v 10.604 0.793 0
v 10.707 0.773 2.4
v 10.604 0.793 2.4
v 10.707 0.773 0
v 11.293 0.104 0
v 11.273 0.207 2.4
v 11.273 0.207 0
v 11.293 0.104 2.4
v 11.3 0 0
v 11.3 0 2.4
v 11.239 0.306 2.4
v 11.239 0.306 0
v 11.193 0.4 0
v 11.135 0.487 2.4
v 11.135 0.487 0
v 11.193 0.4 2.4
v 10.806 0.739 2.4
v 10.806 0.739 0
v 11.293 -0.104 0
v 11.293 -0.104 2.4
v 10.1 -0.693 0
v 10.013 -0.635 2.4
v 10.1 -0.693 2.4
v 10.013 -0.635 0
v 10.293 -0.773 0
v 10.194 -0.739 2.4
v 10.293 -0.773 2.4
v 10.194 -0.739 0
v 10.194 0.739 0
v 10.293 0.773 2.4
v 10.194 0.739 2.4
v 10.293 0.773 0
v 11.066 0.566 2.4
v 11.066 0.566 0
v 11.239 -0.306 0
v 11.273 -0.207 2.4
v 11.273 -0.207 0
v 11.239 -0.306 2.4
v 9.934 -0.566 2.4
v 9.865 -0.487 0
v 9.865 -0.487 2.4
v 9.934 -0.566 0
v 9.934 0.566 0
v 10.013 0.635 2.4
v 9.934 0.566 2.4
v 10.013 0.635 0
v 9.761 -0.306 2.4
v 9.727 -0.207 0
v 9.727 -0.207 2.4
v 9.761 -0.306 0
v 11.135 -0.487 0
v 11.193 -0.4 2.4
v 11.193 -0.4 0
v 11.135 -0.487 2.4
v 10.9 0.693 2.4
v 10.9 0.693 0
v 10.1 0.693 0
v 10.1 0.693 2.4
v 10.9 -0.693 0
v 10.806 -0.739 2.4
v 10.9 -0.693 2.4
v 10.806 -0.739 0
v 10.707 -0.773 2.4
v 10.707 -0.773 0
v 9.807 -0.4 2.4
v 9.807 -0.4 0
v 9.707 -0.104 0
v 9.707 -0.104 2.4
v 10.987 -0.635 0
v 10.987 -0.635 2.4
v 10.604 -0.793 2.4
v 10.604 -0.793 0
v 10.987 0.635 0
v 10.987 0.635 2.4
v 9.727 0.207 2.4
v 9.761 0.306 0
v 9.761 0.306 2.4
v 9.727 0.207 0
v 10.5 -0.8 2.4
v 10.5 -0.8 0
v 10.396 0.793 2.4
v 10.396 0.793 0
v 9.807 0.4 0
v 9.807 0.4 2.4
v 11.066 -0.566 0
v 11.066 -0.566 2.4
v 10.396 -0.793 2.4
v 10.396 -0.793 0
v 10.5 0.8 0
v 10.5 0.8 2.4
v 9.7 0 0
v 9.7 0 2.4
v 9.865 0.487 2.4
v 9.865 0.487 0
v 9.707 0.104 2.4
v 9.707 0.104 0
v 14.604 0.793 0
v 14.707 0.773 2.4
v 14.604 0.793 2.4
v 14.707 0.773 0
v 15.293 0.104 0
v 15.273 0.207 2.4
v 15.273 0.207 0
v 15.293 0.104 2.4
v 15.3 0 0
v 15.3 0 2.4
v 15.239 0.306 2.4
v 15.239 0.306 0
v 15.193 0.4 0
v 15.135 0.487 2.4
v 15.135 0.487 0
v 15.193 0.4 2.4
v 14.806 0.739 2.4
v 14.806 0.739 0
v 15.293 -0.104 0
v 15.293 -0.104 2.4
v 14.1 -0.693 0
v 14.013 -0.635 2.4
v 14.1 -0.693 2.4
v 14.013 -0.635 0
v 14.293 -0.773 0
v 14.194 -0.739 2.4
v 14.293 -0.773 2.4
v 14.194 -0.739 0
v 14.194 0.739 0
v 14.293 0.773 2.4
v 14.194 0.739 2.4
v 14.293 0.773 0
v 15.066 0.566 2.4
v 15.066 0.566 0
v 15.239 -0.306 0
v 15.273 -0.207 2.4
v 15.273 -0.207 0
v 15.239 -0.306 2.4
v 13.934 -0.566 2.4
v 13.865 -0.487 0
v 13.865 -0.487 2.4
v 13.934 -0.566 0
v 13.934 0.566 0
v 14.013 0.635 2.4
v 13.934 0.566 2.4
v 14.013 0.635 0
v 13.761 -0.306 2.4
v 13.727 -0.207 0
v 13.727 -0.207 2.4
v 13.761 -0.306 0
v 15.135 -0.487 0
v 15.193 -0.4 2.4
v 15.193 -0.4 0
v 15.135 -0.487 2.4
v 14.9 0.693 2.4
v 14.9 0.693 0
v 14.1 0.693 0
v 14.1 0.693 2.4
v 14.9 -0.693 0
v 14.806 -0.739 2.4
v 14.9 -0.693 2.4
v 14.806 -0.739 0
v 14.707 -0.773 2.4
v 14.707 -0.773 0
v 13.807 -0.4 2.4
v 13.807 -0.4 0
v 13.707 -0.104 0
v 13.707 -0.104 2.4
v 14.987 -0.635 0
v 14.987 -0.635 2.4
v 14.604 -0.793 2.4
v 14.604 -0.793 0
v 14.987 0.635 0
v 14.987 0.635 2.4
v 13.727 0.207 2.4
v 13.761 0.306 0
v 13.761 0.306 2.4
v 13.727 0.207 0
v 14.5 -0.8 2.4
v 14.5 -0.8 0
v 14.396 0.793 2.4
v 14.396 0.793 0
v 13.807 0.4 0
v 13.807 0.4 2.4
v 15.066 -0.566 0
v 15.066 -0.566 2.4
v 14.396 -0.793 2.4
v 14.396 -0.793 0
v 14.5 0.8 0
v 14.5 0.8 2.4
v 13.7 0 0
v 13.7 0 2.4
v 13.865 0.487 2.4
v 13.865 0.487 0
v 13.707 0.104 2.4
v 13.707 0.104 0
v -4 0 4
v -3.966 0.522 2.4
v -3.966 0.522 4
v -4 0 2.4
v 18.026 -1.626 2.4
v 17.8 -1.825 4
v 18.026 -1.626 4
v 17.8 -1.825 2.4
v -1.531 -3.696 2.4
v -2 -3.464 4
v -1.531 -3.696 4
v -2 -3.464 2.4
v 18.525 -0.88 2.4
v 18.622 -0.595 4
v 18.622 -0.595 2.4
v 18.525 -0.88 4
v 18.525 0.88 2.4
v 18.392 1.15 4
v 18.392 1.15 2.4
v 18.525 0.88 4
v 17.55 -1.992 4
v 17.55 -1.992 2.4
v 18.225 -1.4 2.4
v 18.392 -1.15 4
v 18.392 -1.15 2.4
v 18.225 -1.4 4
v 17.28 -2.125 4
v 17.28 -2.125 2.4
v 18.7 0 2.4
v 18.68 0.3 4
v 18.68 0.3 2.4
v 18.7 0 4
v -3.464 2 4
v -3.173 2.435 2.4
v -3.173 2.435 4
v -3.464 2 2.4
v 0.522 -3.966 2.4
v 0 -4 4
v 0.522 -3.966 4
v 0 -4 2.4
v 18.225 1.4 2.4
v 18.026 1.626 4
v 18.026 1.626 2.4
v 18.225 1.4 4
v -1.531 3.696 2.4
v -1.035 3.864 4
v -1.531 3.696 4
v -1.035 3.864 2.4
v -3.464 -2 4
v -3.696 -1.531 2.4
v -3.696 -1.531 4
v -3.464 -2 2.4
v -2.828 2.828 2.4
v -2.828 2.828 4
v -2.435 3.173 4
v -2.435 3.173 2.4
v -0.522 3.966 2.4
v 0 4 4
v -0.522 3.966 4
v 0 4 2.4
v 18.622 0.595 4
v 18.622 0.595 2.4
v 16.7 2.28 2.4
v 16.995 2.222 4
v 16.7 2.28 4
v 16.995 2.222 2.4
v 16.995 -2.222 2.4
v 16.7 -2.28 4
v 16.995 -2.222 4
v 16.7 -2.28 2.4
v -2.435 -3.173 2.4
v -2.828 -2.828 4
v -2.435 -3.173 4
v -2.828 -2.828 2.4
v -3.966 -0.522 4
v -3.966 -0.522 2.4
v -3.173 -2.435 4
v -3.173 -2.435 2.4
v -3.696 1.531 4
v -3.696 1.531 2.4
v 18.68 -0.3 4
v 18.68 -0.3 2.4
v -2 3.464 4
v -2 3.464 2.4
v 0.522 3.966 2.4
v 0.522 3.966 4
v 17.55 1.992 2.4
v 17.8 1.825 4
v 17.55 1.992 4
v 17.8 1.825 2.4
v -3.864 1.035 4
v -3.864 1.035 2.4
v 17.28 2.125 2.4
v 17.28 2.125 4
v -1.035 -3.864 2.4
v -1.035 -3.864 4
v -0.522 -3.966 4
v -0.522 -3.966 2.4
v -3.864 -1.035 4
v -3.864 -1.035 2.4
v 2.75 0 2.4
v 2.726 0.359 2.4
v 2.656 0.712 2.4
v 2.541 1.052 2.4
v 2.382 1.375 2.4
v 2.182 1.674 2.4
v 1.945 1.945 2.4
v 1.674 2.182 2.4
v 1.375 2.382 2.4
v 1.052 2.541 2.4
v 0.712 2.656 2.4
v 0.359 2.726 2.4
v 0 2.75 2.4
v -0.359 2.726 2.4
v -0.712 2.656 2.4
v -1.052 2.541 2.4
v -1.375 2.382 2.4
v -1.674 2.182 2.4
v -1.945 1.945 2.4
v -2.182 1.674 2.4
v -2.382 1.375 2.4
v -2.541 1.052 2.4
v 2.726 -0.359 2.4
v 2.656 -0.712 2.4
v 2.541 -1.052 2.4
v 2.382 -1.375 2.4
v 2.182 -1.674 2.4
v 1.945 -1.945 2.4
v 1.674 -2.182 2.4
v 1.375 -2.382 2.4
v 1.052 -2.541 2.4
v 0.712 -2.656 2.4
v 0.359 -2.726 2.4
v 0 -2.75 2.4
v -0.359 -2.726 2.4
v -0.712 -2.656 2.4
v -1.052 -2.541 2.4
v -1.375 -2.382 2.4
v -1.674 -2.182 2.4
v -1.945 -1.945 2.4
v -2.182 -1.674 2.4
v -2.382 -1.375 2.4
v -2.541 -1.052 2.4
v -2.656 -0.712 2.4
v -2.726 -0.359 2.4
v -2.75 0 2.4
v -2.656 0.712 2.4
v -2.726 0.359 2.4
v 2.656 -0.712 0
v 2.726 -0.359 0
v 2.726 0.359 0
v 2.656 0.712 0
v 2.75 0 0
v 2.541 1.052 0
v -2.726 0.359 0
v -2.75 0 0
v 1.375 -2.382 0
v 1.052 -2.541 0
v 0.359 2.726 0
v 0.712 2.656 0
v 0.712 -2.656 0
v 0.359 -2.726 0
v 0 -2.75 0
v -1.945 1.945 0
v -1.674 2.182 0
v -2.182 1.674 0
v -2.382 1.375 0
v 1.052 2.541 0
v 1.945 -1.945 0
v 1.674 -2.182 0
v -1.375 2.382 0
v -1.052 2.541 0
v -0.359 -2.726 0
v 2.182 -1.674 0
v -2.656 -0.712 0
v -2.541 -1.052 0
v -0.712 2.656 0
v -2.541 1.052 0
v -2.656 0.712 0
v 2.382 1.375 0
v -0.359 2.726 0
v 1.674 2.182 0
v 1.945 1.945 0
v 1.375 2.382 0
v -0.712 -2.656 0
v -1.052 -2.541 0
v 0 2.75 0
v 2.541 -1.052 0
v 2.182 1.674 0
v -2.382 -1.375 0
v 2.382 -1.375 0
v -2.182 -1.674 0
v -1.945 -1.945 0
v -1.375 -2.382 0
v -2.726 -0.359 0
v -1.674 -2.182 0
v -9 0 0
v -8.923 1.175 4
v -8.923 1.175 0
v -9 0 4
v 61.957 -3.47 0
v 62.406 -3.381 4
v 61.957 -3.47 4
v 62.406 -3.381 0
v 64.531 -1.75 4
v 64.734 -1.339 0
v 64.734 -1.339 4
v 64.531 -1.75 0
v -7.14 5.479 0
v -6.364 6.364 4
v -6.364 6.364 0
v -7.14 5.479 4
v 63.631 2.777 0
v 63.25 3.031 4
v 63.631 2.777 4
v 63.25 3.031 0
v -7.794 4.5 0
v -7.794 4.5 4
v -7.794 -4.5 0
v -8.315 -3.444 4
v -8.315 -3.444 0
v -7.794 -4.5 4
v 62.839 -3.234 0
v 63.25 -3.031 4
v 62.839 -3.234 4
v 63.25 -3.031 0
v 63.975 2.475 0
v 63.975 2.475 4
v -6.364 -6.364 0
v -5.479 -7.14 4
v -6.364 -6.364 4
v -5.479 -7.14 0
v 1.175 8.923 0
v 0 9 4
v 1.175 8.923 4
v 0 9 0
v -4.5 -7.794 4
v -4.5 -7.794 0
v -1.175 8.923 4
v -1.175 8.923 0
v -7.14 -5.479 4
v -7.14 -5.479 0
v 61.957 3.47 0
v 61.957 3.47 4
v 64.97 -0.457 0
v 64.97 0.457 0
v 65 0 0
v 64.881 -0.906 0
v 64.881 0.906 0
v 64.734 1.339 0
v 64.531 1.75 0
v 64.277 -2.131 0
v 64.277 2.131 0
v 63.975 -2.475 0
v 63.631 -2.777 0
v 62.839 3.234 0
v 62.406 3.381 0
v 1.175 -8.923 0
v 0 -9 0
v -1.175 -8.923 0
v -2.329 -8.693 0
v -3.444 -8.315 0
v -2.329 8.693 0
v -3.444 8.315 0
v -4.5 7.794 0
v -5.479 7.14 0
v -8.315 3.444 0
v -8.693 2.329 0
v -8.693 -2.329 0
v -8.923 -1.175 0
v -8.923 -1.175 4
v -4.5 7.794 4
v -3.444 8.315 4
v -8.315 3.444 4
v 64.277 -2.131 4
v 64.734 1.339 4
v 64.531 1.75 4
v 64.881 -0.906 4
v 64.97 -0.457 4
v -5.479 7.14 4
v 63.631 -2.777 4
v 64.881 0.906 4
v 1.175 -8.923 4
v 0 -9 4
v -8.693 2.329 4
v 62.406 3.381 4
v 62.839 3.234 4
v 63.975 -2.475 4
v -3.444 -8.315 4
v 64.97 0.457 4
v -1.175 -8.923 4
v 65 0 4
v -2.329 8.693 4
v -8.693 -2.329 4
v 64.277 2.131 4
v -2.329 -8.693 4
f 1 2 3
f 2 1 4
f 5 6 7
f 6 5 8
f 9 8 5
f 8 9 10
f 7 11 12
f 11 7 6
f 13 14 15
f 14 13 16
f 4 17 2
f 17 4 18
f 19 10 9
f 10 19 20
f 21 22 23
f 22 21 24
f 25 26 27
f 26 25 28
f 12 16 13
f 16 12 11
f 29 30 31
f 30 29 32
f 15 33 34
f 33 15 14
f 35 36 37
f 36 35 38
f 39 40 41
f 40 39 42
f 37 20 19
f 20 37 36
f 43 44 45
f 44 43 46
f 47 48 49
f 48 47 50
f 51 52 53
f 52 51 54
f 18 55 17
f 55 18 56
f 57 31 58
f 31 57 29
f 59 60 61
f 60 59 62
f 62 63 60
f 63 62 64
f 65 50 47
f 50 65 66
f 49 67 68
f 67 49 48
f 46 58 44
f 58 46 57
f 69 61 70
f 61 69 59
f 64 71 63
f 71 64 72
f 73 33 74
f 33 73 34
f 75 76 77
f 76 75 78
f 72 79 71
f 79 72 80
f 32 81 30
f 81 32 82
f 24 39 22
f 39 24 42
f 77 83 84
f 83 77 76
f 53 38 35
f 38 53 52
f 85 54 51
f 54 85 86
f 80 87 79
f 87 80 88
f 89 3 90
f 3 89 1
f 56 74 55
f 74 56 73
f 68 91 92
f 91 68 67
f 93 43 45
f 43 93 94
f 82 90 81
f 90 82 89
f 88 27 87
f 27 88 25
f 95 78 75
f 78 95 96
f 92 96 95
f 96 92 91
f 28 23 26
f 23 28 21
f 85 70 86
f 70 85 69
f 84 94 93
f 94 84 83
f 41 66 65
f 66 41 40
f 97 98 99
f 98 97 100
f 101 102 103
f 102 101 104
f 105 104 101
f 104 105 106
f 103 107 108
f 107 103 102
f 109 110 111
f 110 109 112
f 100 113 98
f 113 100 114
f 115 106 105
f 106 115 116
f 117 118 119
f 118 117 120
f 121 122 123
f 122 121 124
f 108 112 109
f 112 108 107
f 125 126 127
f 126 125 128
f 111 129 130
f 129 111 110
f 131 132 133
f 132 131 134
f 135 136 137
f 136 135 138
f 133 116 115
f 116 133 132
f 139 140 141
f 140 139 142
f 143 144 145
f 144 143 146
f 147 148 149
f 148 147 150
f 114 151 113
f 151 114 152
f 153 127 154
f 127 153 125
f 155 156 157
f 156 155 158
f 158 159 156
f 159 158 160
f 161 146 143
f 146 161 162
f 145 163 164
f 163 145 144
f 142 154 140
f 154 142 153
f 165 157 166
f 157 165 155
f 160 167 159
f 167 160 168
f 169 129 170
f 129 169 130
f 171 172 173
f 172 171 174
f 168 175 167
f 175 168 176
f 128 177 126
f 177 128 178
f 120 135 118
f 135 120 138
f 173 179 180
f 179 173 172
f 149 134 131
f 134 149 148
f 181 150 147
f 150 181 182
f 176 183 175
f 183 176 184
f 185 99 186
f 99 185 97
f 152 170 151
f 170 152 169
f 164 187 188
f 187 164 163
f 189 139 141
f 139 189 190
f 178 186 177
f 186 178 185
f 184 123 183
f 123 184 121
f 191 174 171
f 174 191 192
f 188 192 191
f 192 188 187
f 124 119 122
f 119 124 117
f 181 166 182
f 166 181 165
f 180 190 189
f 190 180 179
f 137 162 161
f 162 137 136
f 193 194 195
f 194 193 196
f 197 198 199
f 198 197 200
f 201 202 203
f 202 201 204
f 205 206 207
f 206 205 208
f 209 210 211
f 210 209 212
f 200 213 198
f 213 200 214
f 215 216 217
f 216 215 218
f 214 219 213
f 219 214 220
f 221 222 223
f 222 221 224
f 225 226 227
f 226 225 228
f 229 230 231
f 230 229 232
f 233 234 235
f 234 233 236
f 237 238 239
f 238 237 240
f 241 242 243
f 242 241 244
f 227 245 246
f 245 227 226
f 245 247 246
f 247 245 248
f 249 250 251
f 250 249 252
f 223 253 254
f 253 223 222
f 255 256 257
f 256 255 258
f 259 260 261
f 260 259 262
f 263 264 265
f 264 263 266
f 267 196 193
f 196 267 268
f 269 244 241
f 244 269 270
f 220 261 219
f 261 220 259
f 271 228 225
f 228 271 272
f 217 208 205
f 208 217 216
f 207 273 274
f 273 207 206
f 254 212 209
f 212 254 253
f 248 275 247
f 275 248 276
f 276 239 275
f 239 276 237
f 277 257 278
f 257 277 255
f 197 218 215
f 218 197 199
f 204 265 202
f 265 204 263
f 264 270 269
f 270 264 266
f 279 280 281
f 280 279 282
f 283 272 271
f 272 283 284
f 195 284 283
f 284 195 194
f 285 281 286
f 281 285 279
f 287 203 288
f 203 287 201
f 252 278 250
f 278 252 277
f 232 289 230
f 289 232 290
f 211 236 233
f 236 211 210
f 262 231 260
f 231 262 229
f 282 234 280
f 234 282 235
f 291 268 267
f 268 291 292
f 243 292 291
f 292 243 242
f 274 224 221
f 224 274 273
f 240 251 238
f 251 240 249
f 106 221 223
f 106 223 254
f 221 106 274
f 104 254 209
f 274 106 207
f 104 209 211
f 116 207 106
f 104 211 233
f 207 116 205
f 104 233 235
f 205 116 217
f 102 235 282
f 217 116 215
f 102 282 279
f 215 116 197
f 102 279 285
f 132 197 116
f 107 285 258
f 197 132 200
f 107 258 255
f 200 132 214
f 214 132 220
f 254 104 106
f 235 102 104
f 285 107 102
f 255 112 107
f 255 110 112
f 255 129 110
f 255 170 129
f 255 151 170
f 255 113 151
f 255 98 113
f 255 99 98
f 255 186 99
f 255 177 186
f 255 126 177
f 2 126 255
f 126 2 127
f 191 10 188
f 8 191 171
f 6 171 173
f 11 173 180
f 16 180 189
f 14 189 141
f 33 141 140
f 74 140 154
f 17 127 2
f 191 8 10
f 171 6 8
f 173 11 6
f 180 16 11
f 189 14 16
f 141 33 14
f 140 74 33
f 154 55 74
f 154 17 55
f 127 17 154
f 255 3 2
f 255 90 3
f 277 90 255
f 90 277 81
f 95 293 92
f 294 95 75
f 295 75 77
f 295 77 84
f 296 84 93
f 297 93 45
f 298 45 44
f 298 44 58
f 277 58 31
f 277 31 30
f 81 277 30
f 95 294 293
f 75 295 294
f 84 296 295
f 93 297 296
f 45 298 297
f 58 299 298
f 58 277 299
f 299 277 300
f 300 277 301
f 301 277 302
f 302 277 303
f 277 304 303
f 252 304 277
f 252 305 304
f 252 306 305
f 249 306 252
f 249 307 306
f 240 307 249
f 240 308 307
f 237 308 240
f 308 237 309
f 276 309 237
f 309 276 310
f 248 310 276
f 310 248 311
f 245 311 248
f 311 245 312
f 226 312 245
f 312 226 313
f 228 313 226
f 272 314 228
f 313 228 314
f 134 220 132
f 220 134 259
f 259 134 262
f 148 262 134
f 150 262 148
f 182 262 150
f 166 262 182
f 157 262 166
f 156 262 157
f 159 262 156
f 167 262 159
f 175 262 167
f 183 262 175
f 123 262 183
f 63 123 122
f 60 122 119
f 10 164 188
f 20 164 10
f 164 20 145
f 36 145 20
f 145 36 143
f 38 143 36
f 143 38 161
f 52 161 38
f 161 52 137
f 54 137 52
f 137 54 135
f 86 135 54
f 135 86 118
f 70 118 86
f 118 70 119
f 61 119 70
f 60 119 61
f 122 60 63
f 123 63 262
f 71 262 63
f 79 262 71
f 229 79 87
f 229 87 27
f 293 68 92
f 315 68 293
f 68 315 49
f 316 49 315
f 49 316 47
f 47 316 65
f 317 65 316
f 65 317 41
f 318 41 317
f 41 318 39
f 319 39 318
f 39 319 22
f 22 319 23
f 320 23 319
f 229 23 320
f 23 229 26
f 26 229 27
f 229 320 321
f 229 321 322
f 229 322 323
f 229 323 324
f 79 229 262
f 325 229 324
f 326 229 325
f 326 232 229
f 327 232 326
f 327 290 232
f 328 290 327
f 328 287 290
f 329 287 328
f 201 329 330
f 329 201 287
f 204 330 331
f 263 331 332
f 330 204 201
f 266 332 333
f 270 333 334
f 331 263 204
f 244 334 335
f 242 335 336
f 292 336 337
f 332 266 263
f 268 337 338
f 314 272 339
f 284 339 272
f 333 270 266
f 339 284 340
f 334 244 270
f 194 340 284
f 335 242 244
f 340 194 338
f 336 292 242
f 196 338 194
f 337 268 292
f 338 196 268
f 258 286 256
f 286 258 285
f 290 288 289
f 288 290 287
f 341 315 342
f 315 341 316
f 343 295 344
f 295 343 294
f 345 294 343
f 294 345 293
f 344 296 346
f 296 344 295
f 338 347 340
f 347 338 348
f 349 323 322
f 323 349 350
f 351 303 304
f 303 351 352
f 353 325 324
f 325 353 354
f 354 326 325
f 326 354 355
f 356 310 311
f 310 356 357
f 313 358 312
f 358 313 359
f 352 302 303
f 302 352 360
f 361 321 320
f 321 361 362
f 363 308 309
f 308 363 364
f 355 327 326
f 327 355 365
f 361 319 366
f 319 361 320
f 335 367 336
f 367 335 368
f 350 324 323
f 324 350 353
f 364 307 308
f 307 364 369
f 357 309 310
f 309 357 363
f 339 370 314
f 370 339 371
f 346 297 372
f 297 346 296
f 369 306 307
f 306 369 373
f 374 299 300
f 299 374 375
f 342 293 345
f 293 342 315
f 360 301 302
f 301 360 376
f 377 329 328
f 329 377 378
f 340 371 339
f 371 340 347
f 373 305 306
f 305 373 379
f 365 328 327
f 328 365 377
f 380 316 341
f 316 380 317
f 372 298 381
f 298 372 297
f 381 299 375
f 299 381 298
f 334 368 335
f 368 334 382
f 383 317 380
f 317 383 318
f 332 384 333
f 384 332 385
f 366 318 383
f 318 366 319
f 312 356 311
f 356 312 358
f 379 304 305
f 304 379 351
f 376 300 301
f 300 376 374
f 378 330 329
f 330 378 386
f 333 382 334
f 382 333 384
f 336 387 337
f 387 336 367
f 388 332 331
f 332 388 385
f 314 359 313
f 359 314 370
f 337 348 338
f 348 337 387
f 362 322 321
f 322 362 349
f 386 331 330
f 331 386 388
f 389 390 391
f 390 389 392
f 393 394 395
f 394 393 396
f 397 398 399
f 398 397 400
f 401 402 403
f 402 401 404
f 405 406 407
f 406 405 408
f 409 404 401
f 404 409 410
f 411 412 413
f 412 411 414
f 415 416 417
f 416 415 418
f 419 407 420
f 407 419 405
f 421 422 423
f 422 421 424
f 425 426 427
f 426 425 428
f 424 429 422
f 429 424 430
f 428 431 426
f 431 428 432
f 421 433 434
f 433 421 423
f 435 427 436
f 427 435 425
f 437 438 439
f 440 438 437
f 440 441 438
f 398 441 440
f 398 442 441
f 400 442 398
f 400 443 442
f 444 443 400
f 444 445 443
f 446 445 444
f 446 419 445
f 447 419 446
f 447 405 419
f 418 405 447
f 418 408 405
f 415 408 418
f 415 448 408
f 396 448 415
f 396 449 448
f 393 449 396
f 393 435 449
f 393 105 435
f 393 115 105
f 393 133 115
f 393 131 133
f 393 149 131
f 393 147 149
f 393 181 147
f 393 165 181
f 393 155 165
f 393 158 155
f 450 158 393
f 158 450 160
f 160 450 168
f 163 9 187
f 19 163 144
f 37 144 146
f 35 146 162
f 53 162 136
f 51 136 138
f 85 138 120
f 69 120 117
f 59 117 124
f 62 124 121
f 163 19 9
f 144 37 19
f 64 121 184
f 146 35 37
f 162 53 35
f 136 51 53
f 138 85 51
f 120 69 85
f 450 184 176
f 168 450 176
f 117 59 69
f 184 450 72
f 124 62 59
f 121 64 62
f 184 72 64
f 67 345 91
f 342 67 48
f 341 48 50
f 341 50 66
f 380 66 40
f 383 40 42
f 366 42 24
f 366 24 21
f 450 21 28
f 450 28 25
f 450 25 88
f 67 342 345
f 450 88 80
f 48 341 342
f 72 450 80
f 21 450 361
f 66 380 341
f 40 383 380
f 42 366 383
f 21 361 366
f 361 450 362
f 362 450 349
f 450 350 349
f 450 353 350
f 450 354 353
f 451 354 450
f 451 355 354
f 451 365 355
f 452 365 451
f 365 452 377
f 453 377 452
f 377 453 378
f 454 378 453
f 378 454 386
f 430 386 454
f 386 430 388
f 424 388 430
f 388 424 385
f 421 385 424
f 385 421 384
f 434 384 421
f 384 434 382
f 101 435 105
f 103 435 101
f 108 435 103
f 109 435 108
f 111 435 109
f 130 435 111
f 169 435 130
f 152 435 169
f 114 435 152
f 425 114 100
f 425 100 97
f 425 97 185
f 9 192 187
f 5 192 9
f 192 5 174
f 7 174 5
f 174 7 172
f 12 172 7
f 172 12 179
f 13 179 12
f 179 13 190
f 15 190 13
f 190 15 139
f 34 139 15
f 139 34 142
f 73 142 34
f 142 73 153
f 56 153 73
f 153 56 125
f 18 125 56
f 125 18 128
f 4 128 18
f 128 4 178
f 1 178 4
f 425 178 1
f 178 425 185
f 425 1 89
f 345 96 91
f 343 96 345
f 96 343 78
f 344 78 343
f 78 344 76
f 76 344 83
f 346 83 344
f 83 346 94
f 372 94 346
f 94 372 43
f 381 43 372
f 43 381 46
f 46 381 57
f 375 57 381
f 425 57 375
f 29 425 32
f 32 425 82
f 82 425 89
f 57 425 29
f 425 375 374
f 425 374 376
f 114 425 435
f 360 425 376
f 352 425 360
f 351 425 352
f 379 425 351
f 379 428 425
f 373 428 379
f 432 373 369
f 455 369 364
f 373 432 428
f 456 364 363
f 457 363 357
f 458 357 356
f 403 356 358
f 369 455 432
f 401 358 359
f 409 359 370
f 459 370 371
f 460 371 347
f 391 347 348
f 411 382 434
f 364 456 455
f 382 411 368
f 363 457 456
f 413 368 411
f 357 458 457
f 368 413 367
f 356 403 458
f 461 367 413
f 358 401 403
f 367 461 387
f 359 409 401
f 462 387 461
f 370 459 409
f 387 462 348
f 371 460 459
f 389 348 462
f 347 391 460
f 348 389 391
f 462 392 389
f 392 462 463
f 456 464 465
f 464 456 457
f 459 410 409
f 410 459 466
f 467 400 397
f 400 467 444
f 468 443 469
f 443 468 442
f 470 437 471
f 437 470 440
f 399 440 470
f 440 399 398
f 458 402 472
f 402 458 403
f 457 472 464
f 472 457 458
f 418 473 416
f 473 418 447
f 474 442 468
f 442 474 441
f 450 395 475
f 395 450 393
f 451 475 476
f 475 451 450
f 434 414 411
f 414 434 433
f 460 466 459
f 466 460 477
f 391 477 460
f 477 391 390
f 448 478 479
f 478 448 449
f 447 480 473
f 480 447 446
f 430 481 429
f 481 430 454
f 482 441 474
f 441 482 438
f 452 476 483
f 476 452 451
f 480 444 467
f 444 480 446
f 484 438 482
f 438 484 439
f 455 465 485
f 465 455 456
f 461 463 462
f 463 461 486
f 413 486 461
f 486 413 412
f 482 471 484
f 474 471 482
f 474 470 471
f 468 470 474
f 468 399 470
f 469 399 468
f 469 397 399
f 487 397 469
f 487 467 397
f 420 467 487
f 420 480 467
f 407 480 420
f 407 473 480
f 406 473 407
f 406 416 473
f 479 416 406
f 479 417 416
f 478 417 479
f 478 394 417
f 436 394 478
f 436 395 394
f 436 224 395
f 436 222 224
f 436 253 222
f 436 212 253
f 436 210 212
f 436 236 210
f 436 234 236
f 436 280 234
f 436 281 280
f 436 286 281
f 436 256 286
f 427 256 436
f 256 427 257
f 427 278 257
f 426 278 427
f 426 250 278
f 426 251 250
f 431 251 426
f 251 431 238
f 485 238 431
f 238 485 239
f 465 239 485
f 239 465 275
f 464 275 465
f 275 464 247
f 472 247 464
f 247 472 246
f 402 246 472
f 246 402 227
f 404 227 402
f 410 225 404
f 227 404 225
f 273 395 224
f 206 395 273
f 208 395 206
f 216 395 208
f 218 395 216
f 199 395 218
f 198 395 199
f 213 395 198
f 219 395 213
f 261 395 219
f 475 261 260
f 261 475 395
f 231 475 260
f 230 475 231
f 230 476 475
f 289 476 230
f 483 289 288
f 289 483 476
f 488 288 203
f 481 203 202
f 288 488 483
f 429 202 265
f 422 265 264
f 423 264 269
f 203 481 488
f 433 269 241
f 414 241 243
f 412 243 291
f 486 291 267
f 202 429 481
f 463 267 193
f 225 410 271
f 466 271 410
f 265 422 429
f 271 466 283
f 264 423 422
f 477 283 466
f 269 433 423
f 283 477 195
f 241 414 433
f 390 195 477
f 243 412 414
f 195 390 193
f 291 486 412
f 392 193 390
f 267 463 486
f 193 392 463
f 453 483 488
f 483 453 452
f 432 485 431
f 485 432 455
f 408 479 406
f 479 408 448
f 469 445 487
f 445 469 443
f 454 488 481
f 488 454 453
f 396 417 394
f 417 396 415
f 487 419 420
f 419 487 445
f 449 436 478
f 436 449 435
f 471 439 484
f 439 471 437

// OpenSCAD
// file: params.scad
// 六足机器人 · 共享参数（被 body_plate / deck / femur / tibia 引用，本文件自己不导出 STL）
//
// 腿的几何尺寸和 Seeker 固件 mcu_ws/lib/RobotConfig/HexapodConfig.h 一一对应：
//   body_half_length ↔ kBodyHalfLength    body_half_width ↔ kBodyHalfWidth
//   L1 ↔ kL1（髋轴 → 膝轴）              L2 ↔ kL2（膝轴 → 脚尖）
// 改了这里的数字，固件里的同名常数也要一起改。
//
// ★ 先用游标卡尺量你的舵机和舵机臂，改 [舵机] 和 [舵机臂] 两组数字，再导出 STL。

/* [舵机 MG90S（量你自己的）] */
servo_w = 12.2;           // 机身宽度 (mm)
servo_l = 22.8;           // 机身长度，沿安装耳方向 (mm)
ear_span = 32.5;          // 两个安装耳外端之间的总长 (mm)
ear_hole_spacing = 28.0;  // 两个安装孔的中心距 (mm)
ear_z = 15.9;             // 机身底面 → 安装耳下表面 (mm)
case_h = 22.7;            // 机身底面 → 机壳顶面（不含输出轴）(mm)
shaft_off = 5.4;          // 输出轴中心 → 机身中心，沿长度方向 (mm)
shaft_gap = 4.0;          // 机壳顶面 → 舵机臂贴合面（花键凸台高度）(mm)

/* [舵机臂（单边臂，量你自己的）] */
horn_hub_d = 7.6;         // 舵机臂中心圆盘直径 (mm)
horn_len = 18.5;          // 中心 → 臂尖 (mm)
horn_w_hub = 6.2;         // 臂根宽度 (mm)
horn_w_tip = 4.2;         // 臂尖宽度 (mm)
horn_t = 1.6;             // 臂厚 = 零件上凹槽深度 (mm)
horn_holes = [10.5, 14.5];// 用来固定舵机臂的两个孔到中心的距离 (mm)
horn_screw_access = 5.5;  // 中心过孔：舵机臂中心螺丝和螺丝刀从这里进 (mm)

/* [腿的几何（和固件一致）] */
body_half_length = 60;    // 前 / 后腿髋轴到机身中心的 X 距离 (mm)
body_half_width = 40;     // 左 / 右腿髋轴到机身中心的 Y 距离 (mm)
L1 = 45;                  // 大腿：髋轴 → 膝轴 (mm)
L2 = 65;                  // 小腿：膝轴 → 脚尖 (mm)

/* [打印余量] */
clearance = 0.4;          // 方孔比舵机大多少 (mm)；太紧就加大到 0.5
screw_pilot = 1.6;        // M2 自攻螺丝底孔 (mm)
m3_hole = 3.4;            // M3 通孔 (mm)

/* [Hidden] */
// 6 条腿：[髋轴 X, 髋轴 Y, 朝外方向角°]，顺序 FL FR ML MR RL RR（和固件的 leg 0..5 一致）
legs = [
  [ body_half_length,  body_half_width,   60],
  [ body_half_length, -body_half_width,  -60],
  [ 0,                 body_half_width,   90],
  [ 0,                -body_half_width,  -90],
  [-body_half_length,  body_half_width,  120],
  [-body_half_length, -body_half_width, -120]
];
leg_names = ["FL", "FR", "ML", "MR", "RL", "RR"];

pocket_w = servo_w + clearance;
pocket_l = servo_l + clearance;
servo_end_out = servo_l / 2 - shaft_off;   // 输出轴 → 机身外端 (mm)
servo_end_in = servo_l / 2 + shaft_off;    // 输出轴 → 机身内端 (mm)

// 单边舵机臂的 2D 外形：中心在原点，臂沿 +X
module horn_2d(extra = 0) {
  hull() {
    circle(d = horn_hub_d + extra);
    translate([0, -(horn_w_hub + extra) / 2]) square([0.01, horn_w_hub + extra]);
    translate([horn_len - horn_w_tip / 2, 0]) circle(d = horn_w_tip + extra);
  }
}

// 舵机臂凹槽（从 z = 0 往 +Z 挖 horn_t 深）+ 中心过孔 + 两个固定孔
module horn_cut(depth_through = 10) {
  translate([0, 0, -0.01]) linear_extrude(horn_t + 0.01) horn_2d(clearance);
  translate([0, 0, -1]) cylinder(d = horn_screw_access, h = depth_through + 2);
  for (r = horn_holes) translate([r, 0, -1]) cylinder(d = screw_pilot, h = depth_through + 2);
}
// main file
// 六足机器人 · 小腿 (tibia)
//
// 上端压在膝舵机的舵机臂上，下端是脚尖。膝轴 → 脚尖的距离 = L2。
// 6 条腿用同一个零件：右边三条腿把它翻过来装（舵机臂凹槽始终朝着舵机）。
// 脚尖可以套一小段 6 mm 热缩管或硅胶脚套防滑。
//
// 打印：PETG 或 PLA+，层高 0.2 mm，4 圈壁，30% 填充。
//       平放，有凹槽的一面朝上，不需要支撑。打 6 个（多打 1–2 个备用）。
// 坐标：原点 = 膝轴，X+ = 沿小腿指向脚尖，Z = 厚度方向。

include <params.scad>

/* [小腿] */
tib_t = 4.0;              // 厚度 (mm)
hub_r = 9;                // 膝端圆盘半径 (mm)
bar_w_top = 11;           // 靠膝盖处宽度 (mm)
foot_r = 3.5;             // 脚尖圆角半径 (mm)

/* [Hidden] */
$fn = 48;

module profile_2d() {
  hull() {
    circle(r = hub_r);
    translate([hub_r + 4, -bar_w_top / 2]) square([0.01, bar_w_top]);
    translate([L2 - foot_r, 0]) circle(r = foot_r);
  }
}

difference() {
  linear_extrude(tib_t) profile_2d();
  // 膝舵机的舵机臂凹槽：在顶面 (z = tib_t) 往下挖，臂沿 +X
  translate([0, 0, tib_t]) mirror([0, 0, 1]) horn_cut(tib_t);
}
